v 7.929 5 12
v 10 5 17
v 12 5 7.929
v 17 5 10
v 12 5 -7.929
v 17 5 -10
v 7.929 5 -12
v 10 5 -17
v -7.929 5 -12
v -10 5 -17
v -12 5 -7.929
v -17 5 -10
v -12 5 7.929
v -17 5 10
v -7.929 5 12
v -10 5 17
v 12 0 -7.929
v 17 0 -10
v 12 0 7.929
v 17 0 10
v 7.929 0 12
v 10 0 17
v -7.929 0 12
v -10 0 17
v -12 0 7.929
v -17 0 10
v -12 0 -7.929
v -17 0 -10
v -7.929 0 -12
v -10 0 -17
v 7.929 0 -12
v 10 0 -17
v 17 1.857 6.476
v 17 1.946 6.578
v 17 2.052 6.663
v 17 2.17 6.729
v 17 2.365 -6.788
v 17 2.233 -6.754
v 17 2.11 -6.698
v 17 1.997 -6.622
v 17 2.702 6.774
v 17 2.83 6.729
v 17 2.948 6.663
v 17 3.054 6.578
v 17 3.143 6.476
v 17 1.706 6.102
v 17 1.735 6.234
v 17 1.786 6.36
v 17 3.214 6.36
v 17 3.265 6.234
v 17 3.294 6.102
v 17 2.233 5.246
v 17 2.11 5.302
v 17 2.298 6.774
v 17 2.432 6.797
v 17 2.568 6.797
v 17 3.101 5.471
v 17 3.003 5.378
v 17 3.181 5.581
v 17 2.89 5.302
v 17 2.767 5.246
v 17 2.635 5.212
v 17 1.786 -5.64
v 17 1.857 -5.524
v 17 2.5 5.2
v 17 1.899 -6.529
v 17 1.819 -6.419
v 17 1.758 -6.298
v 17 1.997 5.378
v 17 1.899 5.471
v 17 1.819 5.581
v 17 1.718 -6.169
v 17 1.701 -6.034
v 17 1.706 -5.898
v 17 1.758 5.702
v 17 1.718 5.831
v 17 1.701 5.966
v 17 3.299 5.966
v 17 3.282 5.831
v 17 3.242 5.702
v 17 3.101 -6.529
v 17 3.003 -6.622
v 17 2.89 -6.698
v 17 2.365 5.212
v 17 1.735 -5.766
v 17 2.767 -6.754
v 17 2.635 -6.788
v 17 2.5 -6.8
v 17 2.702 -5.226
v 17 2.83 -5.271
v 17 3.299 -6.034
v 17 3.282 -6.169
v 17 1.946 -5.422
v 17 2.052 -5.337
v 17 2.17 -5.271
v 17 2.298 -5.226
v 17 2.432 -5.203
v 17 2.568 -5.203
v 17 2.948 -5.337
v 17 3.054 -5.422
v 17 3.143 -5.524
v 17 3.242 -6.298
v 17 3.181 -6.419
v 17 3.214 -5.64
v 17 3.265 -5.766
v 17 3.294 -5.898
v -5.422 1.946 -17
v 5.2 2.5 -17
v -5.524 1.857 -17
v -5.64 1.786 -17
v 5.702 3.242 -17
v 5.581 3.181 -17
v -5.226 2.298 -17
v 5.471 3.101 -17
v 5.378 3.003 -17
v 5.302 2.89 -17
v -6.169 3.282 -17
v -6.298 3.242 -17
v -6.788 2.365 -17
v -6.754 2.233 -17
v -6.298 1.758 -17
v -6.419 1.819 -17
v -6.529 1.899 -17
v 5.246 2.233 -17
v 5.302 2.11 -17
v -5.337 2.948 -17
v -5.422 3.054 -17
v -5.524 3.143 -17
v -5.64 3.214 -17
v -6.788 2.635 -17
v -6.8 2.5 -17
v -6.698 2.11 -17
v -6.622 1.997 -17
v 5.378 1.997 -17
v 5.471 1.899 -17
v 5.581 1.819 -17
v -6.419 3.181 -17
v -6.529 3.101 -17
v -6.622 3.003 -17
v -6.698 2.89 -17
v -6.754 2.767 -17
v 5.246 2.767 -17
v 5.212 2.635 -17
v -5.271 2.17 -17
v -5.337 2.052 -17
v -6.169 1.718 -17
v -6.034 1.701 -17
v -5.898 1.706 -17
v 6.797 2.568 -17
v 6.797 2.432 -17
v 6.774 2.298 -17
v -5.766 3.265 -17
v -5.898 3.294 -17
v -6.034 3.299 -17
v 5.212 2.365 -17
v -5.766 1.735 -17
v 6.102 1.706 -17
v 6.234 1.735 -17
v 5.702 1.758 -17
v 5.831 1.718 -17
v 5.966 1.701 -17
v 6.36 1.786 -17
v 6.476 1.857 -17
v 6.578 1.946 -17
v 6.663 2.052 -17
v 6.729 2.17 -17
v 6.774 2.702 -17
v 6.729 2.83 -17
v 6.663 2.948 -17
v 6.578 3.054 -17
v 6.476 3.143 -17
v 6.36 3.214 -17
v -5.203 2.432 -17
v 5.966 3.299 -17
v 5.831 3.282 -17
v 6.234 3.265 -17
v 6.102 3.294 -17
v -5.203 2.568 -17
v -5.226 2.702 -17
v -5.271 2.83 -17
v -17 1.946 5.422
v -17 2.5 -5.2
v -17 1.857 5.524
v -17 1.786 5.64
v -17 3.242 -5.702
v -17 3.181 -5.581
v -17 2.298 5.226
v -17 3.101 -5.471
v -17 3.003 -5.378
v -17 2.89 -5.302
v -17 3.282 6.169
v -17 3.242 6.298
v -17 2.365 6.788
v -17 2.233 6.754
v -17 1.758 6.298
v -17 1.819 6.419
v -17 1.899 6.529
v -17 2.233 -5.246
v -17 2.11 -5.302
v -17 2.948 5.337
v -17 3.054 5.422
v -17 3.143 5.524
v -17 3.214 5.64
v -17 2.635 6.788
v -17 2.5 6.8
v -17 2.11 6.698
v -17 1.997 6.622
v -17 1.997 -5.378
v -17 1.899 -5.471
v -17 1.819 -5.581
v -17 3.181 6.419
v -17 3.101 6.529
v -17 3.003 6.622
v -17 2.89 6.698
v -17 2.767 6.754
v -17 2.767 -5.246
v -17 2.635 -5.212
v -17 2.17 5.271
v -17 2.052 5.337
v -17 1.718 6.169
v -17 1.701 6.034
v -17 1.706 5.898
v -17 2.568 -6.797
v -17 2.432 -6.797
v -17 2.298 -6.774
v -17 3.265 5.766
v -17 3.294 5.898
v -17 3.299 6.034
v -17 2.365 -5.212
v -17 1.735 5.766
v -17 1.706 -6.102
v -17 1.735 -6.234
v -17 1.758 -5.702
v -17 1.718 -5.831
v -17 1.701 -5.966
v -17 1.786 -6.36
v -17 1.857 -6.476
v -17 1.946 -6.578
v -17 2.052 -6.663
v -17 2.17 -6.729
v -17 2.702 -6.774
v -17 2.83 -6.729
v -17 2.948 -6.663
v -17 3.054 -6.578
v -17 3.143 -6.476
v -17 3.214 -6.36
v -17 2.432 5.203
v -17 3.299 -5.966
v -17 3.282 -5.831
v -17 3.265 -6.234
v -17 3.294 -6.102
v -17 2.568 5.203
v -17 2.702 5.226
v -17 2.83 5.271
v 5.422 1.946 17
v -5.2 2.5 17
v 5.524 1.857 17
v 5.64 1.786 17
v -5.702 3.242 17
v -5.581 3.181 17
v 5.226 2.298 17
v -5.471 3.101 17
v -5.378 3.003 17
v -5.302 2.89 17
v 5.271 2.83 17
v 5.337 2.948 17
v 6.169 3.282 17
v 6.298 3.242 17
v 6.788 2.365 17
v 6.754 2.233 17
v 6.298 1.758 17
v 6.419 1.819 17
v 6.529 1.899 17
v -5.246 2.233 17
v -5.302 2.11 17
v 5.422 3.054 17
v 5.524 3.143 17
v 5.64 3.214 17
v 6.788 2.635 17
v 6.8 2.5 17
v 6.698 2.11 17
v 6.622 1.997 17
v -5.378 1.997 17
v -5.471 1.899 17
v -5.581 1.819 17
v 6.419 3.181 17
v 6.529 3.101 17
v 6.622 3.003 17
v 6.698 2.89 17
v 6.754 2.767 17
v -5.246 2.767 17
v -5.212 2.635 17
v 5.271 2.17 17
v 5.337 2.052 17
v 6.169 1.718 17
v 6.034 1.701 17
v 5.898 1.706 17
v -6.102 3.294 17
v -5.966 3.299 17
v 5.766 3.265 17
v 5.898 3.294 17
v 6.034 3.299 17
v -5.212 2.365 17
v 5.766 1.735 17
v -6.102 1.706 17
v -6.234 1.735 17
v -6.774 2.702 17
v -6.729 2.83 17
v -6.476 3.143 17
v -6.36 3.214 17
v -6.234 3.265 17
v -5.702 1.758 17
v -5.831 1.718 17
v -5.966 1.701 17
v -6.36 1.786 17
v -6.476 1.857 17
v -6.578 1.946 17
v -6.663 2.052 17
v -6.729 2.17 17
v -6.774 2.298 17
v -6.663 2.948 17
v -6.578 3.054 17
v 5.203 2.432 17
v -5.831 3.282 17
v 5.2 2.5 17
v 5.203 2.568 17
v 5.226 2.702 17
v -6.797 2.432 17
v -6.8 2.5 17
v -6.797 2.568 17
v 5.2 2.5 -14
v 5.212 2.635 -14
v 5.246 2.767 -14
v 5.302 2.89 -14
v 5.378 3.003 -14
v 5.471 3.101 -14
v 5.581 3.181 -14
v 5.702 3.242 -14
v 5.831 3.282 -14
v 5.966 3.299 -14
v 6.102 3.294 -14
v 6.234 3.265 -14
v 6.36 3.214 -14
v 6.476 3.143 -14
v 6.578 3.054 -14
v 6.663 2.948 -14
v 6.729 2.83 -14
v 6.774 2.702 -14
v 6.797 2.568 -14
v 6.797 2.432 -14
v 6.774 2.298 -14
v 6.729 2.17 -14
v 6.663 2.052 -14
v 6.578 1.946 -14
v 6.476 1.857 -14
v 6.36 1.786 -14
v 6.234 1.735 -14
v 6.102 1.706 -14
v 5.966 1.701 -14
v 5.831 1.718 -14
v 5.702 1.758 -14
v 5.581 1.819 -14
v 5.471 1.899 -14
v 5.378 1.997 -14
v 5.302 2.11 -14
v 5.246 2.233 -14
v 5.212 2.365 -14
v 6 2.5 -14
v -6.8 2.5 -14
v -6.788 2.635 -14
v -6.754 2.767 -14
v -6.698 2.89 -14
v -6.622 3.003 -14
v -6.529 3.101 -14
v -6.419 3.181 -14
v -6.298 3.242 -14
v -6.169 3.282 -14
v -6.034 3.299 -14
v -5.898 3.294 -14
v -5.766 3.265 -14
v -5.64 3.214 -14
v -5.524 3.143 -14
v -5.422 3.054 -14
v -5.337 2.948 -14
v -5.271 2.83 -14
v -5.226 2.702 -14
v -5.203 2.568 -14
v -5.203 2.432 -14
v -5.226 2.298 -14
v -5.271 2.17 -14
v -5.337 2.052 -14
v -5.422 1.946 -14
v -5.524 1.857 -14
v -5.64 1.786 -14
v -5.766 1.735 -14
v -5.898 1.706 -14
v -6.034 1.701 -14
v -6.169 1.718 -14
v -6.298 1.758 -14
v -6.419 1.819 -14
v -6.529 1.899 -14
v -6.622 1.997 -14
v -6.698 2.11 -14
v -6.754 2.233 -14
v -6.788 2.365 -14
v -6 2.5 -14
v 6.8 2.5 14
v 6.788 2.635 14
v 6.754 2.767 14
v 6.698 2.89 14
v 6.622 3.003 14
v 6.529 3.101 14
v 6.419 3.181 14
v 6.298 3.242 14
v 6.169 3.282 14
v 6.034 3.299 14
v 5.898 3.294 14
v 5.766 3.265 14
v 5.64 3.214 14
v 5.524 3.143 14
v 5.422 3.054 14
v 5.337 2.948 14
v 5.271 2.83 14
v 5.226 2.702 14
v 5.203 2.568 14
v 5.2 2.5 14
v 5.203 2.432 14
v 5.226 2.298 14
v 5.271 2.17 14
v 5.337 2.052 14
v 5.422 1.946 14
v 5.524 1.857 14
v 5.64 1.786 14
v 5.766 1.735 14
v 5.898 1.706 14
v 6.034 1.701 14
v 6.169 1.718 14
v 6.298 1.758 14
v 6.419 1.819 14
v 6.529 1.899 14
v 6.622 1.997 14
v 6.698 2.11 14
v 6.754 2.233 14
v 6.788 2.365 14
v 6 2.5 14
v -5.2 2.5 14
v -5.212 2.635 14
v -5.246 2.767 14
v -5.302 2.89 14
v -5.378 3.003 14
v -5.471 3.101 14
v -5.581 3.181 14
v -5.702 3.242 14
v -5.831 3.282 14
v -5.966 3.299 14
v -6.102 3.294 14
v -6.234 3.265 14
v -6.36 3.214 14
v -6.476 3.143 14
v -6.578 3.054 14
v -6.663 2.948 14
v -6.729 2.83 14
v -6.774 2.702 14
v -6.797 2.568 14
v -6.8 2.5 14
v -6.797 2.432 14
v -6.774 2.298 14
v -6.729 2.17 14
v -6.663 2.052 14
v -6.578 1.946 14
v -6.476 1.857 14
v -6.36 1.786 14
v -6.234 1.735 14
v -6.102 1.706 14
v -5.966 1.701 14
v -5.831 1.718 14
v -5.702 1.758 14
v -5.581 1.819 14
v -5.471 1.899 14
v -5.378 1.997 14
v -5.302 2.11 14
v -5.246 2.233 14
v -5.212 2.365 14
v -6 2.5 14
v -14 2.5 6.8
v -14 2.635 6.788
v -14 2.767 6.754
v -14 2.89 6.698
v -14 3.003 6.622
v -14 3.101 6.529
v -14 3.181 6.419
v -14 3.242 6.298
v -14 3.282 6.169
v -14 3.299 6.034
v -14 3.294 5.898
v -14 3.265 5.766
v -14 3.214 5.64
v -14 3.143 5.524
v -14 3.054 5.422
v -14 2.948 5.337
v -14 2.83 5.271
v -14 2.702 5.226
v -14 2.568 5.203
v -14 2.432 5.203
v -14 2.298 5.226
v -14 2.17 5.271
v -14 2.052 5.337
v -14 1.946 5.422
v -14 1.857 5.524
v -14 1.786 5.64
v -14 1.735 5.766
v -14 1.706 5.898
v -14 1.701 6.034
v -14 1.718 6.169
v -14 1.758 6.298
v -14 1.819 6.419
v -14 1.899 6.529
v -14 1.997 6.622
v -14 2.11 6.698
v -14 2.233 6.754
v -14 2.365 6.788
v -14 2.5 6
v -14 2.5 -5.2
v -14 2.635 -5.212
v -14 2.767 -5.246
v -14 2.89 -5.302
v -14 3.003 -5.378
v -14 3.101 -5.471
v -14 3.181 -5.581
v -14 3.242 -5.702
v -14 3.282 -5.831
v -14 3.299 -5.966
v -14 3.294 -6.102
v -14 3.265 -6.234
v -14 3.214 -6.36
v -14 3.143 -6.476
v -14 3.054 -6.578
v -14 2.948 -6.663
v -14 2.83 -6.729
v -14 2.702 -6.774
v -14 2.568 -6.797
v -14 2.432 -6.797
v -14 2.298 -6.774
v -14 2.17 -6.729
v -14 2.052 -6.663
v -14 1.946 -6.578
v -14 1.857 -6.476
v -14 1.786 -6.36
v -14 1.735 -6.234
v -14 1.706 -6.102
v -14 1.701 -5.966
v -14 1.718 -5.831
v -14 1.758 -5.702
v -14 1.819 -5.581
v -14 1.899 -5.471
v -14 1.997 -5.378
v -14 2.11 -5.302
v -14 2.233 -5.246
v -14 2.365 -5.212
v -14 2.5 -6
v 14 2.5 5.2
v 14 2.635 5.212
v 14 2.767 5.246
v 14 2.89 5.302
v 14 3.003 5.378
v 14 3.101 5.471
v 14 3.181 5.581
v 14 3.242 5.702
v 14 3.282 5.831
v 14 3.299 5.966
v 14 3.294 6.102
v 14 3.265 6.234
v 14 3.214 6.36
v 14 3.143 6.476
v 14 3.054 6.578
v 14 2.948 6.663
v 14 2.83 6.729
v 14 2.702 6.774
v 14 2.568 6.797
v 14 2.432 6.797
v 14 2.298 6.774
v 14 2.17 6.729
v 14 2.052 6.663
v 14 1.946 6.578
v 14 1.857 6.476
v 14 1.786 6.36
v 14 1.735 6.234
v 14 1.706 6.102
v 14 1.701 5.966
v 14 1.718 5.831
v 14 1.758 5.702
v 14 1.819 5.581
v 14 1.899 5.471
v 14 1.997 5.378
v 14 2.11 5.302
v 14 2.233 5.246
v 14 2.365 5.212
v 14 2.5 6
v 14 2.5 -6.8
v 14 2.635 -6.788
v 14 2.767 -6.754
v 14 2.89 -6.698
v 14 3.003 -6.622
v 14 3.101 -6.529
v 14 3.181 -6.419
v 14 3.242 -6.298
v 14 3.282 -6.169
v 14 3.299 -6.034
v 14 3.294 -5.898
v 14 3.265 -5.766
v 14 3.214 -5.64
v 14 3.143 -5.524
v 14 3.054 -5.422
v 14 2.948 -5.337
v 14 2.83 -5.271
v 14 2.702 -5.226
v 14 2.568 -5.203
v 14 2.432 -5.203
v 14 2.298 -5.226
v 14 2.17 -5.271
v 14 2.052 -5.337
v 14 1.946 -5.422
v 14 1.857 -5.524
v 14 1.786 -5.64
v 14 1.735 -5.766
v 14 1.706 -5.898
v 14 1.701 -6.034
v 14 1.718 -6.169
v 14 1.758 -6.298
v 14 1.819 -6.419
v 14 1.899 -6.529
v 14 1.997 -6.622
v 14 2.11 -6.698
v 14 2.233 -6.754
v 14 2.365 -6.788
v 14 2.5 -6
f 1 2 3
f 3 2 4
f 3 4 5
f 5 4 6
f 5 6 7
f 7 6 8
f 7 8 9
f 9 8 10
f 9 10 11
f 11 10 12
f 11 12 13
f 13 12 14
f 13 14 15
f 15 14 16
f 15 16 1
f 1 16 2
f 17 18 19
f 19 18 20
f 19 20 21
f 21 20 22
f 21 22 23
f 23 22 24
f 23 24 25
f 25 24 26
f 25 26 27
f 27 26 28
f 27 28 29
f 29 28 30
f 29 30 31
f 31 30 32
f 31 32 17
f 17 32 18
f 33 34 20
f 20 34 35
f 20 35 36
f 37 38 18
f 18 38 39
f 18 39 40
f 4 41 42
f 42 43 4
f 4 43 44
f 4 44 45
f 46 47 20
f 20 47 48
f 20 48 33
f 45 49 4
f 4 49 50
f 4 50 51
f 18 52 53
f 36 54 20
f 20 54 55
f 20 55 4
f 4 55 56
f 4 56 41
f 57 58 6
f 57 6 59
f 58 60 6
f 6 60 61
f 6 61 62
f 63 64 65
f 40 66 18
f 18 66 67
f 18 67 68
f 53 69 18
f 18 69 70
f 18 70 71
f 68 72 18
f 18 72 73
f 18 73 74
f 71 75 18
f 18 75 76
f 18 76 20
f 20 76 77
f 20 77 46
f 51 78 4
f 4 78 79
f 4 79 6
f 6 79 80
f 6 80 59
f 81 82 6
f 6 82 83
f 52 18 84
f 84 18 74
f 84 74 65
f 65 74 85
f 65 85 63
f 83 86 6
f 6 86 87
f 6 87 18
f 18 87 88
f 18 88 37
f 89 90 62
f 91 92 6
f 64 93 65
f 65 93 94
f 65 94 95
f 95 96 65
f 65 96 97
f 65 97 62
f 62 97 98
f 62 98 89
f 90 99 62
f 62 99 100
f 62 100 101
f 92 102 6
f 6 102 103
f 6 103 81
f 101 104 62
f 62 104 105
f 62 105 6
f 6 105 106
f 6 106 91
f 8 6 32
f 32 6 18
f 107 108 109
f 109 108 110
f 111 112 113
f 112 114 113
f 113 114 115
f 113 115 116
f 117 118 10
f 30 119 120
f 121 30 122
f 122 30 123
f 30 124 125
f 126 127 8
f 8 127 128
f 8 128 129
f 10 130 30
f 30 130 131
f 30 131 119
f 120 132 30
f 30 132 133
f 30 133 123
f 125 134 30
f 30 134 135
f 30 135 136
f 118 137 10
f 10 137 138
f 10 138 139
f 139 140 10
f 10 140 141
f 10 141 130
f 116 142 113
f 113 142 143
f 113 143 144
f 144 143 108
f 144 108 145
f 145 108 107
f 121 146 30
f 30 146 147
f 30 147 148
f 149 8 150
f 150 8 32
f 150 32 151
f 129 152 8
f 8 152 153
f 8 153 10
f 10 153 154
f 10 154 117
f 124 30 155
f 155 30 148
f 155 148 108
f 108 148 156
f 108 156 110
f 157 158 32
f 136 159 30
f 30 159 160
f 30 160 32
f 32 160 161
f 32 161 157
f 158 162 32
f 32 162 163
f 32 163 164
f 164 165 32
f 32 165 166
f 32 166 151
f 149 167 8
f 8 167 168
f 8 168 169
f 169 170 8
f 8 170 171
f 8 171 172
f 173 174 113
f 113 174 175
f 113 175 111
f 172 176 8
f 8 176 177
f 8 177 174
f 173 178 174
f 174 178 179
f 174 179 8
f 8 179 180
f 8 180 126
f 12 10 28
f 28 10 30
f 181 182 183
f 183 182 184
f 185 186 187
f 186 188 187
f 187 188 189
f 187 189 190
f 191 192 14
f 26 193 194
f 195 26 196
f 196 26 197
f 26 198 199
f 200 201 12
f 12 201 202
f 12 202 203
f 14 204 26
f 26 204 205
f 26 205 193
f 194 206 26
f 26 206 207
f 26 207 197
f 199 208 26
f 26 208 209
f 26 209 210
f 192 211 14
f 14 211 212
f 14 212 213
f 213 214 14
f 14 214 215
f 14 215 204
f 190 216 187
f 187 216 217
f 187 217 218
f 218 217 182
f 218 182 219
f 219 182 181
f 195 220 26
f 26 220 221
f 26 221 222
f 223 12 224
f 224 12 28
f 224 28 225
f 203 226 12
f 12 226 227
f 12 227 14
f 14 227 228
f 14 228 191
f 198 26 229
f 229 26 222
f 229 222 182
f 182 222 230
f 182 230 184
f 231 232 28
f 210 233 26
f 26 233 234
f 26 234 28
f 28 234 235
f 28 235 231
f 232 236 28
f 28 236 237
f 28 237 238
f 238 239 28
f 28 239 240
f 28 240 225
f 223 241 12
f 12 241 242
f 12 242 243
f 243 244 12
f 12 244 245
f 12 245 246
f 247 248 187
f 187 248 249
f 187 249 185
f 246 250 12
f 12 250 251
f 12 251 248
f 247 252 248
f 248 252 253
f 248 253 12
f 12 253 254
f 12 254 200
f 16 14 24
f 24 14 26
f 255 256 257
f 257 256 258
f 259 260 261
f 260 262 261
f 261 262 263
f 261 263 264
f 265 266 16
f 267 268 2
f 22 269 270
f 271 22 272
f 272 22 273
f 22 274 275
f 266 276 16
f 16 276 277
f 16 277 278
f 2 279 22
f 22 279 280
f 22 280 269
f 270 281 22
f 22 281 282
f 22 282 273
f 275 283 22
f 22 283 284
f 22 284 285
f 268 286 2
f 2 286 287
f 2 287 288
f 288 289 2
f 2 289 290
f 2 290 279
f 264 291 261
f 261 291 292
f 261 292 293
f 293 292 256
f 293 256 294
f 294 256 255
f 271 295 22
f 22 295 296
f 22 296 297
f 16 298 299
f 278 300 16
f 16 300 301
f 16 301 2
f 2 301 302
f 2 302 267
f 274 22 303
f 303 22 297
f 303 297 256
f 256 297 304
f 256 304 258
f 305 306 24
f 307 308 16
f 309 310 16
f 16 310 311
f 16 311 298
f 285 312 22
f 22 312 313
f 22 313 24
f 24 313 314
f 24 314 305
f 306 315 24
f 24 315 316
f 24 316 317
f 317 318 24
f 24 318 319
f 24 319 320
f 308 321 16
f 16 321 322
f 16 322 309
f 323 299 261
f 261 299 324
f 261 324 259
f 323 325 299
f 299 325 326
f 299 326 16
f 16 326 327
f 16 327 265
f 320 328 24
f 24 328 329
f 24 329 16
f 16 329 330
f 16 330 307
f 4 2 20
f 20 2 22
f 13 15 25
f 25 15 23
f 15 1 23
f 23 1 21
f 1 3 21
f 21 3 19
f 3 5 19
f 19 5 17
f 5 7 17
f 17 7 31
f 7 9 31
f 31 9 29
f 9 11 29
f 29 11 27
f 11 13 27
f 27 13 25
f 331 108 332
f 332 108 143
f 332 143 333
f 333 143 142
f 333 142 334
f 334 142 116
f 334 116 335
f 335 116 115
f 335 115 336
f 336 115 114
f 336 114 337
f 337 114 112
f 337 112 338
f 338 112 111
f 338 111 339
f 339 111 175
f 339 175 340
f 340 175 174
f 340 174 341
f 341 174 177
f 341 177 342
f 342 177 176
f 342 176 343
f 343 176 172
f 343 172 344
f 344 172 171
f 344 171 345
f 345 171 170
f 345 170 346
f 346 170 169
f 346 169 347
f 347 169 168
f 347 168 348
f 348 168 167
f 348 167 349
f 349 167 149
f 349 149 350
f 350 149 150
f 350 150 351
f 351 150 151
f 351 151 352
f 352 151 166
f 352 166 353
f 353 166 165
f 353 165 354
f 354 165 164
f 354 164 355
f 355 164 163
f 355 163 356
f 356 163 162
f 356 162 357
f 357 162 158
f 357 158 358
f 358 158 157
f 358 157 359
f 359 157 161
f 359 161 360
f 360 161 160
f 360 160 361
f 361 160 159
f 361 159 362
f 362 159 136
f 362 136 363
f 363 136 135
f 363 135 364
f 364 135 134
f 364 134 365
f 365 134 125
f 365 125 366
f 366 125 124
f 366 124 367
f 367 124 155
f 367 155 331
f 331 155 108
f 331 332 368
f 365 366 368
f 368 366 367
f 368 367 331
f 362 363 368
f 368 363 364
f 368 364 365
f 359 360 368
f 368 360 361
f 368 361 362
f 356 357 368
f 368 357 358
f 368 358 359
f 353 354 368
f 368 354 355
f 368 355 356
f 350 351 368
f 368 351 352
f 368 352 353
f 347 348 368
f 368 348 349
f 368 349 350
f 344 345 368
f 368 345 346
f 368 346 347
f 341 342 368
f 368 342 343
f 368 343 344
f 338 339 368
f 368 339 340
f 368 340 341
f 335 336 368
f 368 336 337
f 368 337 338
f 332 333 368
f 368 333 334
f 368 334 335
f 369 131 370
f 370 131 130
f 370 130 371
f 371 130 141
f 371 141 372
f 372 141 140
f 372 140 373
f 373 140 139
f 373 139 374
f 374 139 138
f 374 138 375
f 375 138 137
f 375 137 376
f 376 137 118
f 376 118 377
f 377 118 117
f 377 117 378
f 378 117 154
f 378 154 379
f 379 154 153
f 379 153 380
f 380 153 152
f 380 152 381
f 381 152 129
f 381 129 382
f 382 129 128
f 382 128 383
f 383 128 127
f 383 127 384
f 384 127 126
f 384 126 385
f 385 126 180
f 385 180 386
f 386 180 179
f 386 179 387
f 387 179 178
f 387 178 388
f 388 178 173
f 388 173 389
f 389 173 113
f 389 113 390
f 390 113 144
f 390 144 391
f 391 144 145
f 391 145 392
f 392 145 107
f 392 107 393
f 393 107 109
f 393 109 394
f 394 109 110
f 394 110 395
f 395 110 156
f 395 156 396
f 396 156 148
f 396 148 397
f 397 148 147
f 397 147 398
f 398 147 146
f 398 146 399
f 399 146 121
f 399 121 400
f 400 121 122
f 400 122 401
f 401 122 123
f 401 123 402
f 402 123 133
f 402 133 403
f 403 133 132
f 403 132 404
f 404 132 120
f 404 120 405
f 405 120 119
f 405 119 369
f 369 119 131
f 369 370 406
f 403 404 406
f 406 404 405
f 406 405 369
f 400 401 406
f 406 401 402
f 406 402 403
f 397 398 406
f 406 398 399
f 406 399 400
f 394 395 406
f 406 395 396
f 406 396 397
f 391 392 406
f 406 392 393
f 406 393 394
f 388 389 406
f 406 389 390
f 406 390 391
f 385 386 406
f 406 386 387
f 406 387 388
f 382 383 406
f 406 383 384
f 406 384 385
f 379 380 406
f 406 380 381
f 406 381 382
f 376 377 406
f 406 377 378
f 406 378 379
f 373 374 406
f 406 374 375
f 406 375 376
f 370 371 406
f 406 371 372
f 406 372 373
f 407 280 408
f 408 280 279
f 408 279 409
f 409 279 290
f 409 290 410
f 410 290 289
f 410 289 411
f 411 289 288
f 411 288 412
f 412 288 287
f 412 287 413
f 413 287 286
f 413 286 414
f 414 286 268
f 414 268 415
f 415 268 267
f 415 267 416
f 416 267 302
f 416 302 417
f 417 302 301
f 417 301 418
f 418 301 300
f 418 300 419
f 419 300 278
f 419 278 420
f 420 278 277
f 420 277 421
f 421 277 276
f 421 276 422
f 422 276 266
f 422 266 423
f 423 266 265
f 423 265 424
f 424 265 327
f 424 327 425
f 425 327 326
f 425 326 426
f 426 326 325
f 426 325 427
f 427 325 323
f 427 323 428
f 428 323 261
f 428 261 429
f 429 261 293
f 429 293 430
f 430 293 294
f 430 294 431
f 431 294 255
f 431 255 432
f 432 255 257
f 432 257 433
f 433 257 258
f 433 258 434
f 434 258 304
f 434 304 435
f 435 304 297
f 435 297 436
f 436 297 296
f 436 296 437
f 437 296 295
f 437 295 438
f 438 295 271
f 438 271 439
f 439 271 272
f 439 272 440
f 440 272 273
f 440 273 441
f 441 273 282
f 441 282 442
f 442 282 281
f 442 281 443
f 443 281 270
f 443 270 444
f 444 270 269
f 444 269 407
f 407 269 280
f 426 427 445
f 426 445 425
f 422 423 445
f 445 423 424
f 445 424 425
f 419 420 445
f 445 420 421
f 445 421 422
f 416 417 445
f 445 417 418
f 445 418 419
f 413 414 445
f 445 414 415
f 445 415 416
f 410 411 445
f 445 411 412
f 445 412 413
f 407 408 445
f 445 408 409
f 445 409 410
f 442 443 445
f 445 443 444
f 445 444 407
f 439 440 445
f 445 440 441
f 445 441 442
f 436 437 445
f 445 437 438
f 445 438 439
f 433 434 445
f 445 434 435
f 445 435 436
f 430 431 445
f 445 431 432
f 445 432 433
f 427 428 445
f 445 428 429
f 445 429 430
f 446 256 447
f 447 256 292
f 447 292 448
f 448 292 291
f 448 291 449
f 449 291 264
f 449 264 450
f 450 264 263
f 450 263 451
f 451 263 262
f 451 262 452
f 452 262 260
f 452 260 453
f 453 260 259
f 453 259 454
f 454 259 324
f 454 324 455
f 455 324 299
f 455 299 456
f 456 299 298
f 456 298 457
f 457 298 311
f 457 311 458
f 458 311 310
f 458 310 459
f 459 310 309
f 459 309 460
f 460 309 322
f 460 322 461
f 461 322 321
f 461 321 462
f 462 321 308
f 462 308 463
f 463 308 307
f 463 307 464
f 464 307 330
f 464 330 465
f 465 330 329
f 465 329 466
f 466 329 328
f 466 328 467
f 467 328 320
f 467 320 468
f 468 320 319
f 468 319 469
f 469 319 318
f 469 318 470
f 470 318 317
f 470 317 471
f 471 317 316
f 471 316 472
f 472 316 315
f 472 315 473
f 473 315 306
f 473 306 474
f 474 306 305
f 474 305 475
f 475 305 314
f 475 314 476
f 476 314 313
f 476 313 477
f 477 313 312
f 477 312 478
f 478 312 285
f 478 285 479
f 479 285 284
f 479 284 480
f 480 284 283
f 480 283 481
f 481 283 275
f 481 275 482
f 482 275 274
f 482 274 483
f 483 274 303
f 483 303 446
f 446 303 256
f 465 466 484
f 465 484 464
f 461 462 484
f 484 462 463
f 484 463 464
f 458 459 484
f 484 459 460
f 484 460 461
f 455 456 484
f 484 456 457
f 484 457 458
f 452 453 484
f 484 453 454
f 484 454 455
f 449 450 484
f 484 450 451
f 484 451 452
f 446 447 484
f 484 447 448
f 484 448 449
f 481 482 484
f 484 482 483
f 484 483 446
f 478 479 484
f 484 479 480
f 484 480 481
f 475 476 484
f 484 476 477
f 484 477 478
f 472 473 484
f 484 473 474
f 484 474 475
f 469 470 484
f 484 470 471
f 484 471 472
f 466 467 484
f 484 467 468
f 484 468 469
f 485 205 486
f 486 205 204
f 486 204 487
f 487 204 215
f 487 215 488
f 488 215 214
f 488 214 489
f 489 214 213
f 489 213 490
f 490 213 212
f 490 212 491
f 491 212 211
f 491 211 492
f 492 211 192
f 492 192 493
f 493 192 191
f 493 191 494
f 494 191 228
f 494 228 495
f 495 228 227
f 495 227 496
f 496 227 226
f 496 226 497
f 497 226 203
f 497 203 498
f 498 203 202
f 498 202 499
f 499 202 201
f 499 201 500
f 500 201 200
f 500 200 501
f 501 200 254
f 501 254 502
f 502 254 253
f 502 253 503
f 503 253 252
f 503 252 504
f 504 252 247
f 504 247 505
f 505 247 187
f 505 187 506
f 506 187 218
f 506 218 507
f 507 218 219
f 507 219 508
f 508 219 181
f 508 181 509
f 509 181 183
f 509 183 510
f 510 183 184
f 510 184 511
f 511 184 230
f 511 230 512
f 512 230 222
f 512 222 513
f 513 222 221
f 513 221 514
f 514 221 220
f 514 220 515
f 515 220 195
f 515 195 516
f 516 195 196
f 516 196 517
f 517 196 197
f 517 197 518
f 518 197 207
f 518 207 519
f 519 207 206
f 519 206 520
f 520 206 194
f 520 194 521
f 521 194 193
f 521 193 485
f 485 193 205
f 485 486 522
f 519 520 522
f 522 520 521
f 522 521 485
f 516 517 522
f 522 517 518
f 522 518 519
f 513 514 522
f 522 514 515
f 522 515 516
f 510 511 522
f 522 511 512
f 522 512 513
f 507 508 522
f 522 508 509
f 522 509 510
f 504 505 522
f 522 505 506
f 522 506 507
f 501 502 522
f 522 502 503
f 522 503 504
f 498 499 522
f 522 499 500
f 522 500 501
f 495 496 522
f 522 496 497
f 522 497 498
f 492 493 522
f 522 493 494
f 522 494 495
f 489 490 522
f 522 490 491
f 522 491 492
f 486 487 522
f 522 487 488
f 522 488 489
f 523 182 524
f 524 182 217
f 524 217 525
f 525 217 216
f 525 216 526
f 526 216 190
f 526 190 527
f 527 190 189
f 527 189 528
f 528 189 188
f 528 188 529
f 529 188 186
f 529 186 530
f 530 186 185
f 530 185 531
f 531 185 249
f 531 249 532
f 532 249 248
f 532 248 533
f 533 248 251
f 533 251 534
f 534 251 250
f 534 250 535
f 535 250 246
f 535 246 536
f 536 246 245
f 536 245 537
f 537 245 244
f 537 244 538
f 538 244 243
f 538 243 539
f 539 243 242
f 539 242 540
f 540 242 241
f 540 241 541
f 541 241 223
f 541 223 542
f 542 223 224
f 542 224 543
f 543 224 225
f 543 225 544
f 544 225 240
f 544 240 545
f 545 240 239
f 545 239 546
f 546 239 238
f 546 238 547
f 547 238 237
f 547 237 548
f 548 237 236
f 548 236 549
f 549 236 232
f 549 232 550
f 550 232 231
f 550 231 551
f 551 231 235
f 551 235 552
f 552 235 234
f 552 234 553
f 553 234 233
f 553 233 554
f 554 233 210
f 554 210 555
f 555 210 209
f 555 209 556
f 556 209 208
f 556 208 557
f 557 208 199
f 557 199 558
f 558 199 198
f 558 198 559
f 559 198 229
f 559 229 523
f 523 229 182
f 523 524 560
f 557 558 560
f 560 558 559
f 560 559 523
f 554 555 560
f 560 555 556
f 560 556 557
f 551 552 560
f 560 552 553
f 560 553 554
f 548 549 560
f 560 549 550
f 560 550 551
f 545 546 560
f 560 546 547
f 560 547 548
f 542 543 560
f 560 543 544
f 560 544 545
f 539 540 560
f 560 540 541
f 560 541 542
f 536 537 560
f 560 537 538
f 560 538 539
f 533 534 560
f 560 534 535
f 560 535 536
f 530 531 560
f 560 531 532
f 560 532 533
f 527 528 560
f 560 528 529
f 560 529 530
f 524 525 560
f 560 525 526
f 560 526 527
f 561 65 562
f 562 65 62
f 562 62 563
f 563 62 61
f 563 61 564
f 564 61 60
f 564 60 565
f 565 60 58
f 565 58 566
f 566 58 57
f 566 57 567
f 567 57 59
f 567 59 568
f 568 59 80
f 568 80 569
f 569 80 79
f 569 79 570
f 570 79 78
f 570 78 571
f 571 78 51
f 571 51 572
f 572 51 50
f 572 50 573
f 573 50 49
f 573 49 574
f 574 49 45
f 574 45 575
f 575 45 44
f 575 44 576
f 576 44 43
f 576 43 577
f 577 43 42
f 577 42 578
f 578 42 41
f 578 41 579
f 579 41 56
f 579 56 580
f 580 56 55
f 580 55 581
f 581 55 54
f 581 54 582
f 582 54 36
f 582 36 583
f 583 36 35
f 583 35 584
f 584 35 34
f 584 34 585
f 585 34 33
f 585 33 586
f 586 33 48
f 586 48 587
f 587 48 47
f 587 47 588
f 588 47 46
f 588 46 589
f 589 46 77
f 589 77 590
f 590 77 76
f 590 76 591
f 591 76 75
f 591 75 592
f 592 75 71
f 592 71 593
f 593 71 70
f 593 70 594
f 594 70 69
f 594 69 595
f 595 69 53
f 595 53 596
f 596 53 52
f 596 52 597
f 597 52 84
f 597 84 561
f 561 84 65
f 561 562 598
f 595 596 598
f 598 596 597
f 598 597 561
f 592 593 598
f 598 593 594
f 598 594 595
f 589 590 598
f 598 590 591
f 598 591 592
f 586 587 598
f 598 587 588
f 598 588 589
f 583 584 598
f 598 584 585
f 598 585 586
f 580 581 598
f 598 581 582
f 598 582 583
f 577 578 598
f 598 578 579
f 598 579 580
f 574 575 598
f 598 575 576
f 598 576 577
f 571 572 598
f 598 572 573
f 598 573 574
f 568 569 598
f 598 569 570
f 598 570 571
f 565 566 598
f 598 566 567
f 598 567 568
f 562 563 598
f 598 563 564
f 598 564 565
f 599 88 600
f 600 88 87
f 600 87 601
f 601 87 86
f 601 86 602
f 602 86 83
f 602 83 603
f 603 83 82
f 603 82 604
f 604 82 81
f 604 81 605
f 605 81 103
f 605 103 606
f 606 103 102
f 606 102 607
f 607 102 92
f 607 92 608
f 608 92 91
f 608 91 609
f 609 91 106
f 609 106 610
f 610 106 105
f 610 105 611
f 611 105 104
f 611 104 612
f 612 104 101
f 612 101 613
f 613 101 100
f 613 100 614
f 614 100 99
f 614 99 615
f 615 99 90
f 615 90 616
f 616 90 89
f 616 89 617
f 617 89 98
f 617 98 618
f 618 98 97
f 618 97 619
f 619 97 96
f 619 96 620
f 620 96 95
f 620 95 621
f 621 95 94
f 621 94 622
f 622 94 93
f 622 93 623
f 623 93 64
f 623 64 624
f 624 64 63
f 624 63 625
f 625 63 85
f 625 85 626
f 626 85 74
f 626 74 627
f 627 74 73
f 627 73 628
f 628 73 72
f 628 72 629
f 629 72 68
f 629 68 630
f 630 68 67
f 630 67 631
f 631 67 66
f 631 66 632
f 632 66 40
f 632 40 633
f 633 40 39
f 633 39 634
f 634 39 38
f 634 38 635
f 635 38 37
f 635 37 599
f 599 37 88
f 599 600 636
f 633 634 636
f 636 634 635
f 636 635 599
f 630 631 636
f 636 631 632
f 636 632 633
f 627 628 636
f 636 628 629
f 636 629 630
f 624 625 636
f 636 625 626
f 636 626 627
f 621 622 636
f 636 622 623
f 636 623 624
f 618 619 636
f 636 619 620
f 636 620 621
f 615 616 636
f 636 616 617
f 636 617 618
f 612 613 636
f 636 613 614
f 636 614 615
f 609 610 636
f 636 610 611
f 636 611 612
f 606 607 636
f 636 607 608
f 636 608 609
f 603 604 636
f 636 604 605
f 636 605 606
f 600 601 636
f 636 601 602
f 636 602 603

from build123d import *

# Parameters (mm, degrees)
EXTRUDE_1_DEPTH     = 5
SKETCH_2_R          = 0.8
CUT_EXTRUDE_1_DEPTH = 3
CUT_EXTRUDE_START   = -31
SKETCH_2_3_R        = 0.8
CUT_EXTRUDE_2_DEPTH = 3
SKETCH_3_R          = 0.8
CUT_EXTRUDE_3_DEPTH = 3
SKETCH_3_2_R        = 0.8
CUT_EXTRUDE_4_DEPTH = 3


with BuildPart() as part:
    # 草图1 → 凸台-拉伸1 (new body)
    with BuildSketch(Plane(origin=(0, 0, 0), x_dir=(1, 0, 0), z_dir=(0, 1, 0))):
        Polygon((-17, 10), (-17, -10), (-10, -17), (10, -17), (17, -10), (17, 10), (10, 17), (-10, 17), align=None)
        Polygon((-7.928932188, 12), (-12, 7.928932188), (-12, -7.928932188), (-7.928932188, -12), (7.928932188, -12), (12, -7.928932188), (12, 7.928932188), (7.928932188, 12), align=None, mode=Mode.SUBTRACT)
    extrude(amount=EXTRUDE_1_DEPTH)

    # 草图2 → 切除-拉伸1 (cut)
    with BuildSketch(Plane(origin=(0, 0, -17), x_dir=(-1, 0, 0), z_dir=(0, 0, -1))):
        with Locations((6, 2.5)):
            Circle(SKETCH_2_R)
        with Locations((-6, 2.5)):
            Circle(SKETCH_2_R)
    extrude(amount=-CUT_EXTRUDE_1_DEPTH, mode=Mode.SUBTRACT)

    # 草图2<3> → 切除-拉伸2 (cut)
    with BuildSketch(Plane(origin=(0, 0, -17), x_dir=(-1, 0, 0), z_dir=(0, 0, -1)).offset(CUT_EXTRUDE_START)):
        with Locations((6, 2.5)):
            Circle(SKETCH_2_3_R)
        with Locations((-6, 2.5)):
            Circle(SKETCH_2_3_R)
    extrude(amount=-CUT_EXTRUDE_2_DEPTH, mode=Mode.SUBTRACT)

    # 草图3 → 切除-拉伸3 (cut)
    with BuildSketch(Plane.ZY.offset(17)):
        with Locations((-6, 2.5)):
            Circle(SKETCH_3_R)
        with Locations((6, 2.5)):
            Circle(SKETCH_3_R)
    extrude(amount=-CUT_EXTRUDE_3_DEPTH, mode=Mode.SUBTRACT)

    # 草图3<2> → 切除-拉伸4 (cut)
    with BuildSketch(Plane.ZY.offset(17).offset(CUT_EXTRUDE_START)):
        with Locations((-6, 2.5)):
            Circle(SKETCH_3_2_R)
        with Locations((6, 2.5)):
            Circle(SKETCH_3_2_R)
    extrude(amount=-CUT_EXTRUDE_4_DEPTH, mode=Mode.SUBTRACT)


solid = part.part
